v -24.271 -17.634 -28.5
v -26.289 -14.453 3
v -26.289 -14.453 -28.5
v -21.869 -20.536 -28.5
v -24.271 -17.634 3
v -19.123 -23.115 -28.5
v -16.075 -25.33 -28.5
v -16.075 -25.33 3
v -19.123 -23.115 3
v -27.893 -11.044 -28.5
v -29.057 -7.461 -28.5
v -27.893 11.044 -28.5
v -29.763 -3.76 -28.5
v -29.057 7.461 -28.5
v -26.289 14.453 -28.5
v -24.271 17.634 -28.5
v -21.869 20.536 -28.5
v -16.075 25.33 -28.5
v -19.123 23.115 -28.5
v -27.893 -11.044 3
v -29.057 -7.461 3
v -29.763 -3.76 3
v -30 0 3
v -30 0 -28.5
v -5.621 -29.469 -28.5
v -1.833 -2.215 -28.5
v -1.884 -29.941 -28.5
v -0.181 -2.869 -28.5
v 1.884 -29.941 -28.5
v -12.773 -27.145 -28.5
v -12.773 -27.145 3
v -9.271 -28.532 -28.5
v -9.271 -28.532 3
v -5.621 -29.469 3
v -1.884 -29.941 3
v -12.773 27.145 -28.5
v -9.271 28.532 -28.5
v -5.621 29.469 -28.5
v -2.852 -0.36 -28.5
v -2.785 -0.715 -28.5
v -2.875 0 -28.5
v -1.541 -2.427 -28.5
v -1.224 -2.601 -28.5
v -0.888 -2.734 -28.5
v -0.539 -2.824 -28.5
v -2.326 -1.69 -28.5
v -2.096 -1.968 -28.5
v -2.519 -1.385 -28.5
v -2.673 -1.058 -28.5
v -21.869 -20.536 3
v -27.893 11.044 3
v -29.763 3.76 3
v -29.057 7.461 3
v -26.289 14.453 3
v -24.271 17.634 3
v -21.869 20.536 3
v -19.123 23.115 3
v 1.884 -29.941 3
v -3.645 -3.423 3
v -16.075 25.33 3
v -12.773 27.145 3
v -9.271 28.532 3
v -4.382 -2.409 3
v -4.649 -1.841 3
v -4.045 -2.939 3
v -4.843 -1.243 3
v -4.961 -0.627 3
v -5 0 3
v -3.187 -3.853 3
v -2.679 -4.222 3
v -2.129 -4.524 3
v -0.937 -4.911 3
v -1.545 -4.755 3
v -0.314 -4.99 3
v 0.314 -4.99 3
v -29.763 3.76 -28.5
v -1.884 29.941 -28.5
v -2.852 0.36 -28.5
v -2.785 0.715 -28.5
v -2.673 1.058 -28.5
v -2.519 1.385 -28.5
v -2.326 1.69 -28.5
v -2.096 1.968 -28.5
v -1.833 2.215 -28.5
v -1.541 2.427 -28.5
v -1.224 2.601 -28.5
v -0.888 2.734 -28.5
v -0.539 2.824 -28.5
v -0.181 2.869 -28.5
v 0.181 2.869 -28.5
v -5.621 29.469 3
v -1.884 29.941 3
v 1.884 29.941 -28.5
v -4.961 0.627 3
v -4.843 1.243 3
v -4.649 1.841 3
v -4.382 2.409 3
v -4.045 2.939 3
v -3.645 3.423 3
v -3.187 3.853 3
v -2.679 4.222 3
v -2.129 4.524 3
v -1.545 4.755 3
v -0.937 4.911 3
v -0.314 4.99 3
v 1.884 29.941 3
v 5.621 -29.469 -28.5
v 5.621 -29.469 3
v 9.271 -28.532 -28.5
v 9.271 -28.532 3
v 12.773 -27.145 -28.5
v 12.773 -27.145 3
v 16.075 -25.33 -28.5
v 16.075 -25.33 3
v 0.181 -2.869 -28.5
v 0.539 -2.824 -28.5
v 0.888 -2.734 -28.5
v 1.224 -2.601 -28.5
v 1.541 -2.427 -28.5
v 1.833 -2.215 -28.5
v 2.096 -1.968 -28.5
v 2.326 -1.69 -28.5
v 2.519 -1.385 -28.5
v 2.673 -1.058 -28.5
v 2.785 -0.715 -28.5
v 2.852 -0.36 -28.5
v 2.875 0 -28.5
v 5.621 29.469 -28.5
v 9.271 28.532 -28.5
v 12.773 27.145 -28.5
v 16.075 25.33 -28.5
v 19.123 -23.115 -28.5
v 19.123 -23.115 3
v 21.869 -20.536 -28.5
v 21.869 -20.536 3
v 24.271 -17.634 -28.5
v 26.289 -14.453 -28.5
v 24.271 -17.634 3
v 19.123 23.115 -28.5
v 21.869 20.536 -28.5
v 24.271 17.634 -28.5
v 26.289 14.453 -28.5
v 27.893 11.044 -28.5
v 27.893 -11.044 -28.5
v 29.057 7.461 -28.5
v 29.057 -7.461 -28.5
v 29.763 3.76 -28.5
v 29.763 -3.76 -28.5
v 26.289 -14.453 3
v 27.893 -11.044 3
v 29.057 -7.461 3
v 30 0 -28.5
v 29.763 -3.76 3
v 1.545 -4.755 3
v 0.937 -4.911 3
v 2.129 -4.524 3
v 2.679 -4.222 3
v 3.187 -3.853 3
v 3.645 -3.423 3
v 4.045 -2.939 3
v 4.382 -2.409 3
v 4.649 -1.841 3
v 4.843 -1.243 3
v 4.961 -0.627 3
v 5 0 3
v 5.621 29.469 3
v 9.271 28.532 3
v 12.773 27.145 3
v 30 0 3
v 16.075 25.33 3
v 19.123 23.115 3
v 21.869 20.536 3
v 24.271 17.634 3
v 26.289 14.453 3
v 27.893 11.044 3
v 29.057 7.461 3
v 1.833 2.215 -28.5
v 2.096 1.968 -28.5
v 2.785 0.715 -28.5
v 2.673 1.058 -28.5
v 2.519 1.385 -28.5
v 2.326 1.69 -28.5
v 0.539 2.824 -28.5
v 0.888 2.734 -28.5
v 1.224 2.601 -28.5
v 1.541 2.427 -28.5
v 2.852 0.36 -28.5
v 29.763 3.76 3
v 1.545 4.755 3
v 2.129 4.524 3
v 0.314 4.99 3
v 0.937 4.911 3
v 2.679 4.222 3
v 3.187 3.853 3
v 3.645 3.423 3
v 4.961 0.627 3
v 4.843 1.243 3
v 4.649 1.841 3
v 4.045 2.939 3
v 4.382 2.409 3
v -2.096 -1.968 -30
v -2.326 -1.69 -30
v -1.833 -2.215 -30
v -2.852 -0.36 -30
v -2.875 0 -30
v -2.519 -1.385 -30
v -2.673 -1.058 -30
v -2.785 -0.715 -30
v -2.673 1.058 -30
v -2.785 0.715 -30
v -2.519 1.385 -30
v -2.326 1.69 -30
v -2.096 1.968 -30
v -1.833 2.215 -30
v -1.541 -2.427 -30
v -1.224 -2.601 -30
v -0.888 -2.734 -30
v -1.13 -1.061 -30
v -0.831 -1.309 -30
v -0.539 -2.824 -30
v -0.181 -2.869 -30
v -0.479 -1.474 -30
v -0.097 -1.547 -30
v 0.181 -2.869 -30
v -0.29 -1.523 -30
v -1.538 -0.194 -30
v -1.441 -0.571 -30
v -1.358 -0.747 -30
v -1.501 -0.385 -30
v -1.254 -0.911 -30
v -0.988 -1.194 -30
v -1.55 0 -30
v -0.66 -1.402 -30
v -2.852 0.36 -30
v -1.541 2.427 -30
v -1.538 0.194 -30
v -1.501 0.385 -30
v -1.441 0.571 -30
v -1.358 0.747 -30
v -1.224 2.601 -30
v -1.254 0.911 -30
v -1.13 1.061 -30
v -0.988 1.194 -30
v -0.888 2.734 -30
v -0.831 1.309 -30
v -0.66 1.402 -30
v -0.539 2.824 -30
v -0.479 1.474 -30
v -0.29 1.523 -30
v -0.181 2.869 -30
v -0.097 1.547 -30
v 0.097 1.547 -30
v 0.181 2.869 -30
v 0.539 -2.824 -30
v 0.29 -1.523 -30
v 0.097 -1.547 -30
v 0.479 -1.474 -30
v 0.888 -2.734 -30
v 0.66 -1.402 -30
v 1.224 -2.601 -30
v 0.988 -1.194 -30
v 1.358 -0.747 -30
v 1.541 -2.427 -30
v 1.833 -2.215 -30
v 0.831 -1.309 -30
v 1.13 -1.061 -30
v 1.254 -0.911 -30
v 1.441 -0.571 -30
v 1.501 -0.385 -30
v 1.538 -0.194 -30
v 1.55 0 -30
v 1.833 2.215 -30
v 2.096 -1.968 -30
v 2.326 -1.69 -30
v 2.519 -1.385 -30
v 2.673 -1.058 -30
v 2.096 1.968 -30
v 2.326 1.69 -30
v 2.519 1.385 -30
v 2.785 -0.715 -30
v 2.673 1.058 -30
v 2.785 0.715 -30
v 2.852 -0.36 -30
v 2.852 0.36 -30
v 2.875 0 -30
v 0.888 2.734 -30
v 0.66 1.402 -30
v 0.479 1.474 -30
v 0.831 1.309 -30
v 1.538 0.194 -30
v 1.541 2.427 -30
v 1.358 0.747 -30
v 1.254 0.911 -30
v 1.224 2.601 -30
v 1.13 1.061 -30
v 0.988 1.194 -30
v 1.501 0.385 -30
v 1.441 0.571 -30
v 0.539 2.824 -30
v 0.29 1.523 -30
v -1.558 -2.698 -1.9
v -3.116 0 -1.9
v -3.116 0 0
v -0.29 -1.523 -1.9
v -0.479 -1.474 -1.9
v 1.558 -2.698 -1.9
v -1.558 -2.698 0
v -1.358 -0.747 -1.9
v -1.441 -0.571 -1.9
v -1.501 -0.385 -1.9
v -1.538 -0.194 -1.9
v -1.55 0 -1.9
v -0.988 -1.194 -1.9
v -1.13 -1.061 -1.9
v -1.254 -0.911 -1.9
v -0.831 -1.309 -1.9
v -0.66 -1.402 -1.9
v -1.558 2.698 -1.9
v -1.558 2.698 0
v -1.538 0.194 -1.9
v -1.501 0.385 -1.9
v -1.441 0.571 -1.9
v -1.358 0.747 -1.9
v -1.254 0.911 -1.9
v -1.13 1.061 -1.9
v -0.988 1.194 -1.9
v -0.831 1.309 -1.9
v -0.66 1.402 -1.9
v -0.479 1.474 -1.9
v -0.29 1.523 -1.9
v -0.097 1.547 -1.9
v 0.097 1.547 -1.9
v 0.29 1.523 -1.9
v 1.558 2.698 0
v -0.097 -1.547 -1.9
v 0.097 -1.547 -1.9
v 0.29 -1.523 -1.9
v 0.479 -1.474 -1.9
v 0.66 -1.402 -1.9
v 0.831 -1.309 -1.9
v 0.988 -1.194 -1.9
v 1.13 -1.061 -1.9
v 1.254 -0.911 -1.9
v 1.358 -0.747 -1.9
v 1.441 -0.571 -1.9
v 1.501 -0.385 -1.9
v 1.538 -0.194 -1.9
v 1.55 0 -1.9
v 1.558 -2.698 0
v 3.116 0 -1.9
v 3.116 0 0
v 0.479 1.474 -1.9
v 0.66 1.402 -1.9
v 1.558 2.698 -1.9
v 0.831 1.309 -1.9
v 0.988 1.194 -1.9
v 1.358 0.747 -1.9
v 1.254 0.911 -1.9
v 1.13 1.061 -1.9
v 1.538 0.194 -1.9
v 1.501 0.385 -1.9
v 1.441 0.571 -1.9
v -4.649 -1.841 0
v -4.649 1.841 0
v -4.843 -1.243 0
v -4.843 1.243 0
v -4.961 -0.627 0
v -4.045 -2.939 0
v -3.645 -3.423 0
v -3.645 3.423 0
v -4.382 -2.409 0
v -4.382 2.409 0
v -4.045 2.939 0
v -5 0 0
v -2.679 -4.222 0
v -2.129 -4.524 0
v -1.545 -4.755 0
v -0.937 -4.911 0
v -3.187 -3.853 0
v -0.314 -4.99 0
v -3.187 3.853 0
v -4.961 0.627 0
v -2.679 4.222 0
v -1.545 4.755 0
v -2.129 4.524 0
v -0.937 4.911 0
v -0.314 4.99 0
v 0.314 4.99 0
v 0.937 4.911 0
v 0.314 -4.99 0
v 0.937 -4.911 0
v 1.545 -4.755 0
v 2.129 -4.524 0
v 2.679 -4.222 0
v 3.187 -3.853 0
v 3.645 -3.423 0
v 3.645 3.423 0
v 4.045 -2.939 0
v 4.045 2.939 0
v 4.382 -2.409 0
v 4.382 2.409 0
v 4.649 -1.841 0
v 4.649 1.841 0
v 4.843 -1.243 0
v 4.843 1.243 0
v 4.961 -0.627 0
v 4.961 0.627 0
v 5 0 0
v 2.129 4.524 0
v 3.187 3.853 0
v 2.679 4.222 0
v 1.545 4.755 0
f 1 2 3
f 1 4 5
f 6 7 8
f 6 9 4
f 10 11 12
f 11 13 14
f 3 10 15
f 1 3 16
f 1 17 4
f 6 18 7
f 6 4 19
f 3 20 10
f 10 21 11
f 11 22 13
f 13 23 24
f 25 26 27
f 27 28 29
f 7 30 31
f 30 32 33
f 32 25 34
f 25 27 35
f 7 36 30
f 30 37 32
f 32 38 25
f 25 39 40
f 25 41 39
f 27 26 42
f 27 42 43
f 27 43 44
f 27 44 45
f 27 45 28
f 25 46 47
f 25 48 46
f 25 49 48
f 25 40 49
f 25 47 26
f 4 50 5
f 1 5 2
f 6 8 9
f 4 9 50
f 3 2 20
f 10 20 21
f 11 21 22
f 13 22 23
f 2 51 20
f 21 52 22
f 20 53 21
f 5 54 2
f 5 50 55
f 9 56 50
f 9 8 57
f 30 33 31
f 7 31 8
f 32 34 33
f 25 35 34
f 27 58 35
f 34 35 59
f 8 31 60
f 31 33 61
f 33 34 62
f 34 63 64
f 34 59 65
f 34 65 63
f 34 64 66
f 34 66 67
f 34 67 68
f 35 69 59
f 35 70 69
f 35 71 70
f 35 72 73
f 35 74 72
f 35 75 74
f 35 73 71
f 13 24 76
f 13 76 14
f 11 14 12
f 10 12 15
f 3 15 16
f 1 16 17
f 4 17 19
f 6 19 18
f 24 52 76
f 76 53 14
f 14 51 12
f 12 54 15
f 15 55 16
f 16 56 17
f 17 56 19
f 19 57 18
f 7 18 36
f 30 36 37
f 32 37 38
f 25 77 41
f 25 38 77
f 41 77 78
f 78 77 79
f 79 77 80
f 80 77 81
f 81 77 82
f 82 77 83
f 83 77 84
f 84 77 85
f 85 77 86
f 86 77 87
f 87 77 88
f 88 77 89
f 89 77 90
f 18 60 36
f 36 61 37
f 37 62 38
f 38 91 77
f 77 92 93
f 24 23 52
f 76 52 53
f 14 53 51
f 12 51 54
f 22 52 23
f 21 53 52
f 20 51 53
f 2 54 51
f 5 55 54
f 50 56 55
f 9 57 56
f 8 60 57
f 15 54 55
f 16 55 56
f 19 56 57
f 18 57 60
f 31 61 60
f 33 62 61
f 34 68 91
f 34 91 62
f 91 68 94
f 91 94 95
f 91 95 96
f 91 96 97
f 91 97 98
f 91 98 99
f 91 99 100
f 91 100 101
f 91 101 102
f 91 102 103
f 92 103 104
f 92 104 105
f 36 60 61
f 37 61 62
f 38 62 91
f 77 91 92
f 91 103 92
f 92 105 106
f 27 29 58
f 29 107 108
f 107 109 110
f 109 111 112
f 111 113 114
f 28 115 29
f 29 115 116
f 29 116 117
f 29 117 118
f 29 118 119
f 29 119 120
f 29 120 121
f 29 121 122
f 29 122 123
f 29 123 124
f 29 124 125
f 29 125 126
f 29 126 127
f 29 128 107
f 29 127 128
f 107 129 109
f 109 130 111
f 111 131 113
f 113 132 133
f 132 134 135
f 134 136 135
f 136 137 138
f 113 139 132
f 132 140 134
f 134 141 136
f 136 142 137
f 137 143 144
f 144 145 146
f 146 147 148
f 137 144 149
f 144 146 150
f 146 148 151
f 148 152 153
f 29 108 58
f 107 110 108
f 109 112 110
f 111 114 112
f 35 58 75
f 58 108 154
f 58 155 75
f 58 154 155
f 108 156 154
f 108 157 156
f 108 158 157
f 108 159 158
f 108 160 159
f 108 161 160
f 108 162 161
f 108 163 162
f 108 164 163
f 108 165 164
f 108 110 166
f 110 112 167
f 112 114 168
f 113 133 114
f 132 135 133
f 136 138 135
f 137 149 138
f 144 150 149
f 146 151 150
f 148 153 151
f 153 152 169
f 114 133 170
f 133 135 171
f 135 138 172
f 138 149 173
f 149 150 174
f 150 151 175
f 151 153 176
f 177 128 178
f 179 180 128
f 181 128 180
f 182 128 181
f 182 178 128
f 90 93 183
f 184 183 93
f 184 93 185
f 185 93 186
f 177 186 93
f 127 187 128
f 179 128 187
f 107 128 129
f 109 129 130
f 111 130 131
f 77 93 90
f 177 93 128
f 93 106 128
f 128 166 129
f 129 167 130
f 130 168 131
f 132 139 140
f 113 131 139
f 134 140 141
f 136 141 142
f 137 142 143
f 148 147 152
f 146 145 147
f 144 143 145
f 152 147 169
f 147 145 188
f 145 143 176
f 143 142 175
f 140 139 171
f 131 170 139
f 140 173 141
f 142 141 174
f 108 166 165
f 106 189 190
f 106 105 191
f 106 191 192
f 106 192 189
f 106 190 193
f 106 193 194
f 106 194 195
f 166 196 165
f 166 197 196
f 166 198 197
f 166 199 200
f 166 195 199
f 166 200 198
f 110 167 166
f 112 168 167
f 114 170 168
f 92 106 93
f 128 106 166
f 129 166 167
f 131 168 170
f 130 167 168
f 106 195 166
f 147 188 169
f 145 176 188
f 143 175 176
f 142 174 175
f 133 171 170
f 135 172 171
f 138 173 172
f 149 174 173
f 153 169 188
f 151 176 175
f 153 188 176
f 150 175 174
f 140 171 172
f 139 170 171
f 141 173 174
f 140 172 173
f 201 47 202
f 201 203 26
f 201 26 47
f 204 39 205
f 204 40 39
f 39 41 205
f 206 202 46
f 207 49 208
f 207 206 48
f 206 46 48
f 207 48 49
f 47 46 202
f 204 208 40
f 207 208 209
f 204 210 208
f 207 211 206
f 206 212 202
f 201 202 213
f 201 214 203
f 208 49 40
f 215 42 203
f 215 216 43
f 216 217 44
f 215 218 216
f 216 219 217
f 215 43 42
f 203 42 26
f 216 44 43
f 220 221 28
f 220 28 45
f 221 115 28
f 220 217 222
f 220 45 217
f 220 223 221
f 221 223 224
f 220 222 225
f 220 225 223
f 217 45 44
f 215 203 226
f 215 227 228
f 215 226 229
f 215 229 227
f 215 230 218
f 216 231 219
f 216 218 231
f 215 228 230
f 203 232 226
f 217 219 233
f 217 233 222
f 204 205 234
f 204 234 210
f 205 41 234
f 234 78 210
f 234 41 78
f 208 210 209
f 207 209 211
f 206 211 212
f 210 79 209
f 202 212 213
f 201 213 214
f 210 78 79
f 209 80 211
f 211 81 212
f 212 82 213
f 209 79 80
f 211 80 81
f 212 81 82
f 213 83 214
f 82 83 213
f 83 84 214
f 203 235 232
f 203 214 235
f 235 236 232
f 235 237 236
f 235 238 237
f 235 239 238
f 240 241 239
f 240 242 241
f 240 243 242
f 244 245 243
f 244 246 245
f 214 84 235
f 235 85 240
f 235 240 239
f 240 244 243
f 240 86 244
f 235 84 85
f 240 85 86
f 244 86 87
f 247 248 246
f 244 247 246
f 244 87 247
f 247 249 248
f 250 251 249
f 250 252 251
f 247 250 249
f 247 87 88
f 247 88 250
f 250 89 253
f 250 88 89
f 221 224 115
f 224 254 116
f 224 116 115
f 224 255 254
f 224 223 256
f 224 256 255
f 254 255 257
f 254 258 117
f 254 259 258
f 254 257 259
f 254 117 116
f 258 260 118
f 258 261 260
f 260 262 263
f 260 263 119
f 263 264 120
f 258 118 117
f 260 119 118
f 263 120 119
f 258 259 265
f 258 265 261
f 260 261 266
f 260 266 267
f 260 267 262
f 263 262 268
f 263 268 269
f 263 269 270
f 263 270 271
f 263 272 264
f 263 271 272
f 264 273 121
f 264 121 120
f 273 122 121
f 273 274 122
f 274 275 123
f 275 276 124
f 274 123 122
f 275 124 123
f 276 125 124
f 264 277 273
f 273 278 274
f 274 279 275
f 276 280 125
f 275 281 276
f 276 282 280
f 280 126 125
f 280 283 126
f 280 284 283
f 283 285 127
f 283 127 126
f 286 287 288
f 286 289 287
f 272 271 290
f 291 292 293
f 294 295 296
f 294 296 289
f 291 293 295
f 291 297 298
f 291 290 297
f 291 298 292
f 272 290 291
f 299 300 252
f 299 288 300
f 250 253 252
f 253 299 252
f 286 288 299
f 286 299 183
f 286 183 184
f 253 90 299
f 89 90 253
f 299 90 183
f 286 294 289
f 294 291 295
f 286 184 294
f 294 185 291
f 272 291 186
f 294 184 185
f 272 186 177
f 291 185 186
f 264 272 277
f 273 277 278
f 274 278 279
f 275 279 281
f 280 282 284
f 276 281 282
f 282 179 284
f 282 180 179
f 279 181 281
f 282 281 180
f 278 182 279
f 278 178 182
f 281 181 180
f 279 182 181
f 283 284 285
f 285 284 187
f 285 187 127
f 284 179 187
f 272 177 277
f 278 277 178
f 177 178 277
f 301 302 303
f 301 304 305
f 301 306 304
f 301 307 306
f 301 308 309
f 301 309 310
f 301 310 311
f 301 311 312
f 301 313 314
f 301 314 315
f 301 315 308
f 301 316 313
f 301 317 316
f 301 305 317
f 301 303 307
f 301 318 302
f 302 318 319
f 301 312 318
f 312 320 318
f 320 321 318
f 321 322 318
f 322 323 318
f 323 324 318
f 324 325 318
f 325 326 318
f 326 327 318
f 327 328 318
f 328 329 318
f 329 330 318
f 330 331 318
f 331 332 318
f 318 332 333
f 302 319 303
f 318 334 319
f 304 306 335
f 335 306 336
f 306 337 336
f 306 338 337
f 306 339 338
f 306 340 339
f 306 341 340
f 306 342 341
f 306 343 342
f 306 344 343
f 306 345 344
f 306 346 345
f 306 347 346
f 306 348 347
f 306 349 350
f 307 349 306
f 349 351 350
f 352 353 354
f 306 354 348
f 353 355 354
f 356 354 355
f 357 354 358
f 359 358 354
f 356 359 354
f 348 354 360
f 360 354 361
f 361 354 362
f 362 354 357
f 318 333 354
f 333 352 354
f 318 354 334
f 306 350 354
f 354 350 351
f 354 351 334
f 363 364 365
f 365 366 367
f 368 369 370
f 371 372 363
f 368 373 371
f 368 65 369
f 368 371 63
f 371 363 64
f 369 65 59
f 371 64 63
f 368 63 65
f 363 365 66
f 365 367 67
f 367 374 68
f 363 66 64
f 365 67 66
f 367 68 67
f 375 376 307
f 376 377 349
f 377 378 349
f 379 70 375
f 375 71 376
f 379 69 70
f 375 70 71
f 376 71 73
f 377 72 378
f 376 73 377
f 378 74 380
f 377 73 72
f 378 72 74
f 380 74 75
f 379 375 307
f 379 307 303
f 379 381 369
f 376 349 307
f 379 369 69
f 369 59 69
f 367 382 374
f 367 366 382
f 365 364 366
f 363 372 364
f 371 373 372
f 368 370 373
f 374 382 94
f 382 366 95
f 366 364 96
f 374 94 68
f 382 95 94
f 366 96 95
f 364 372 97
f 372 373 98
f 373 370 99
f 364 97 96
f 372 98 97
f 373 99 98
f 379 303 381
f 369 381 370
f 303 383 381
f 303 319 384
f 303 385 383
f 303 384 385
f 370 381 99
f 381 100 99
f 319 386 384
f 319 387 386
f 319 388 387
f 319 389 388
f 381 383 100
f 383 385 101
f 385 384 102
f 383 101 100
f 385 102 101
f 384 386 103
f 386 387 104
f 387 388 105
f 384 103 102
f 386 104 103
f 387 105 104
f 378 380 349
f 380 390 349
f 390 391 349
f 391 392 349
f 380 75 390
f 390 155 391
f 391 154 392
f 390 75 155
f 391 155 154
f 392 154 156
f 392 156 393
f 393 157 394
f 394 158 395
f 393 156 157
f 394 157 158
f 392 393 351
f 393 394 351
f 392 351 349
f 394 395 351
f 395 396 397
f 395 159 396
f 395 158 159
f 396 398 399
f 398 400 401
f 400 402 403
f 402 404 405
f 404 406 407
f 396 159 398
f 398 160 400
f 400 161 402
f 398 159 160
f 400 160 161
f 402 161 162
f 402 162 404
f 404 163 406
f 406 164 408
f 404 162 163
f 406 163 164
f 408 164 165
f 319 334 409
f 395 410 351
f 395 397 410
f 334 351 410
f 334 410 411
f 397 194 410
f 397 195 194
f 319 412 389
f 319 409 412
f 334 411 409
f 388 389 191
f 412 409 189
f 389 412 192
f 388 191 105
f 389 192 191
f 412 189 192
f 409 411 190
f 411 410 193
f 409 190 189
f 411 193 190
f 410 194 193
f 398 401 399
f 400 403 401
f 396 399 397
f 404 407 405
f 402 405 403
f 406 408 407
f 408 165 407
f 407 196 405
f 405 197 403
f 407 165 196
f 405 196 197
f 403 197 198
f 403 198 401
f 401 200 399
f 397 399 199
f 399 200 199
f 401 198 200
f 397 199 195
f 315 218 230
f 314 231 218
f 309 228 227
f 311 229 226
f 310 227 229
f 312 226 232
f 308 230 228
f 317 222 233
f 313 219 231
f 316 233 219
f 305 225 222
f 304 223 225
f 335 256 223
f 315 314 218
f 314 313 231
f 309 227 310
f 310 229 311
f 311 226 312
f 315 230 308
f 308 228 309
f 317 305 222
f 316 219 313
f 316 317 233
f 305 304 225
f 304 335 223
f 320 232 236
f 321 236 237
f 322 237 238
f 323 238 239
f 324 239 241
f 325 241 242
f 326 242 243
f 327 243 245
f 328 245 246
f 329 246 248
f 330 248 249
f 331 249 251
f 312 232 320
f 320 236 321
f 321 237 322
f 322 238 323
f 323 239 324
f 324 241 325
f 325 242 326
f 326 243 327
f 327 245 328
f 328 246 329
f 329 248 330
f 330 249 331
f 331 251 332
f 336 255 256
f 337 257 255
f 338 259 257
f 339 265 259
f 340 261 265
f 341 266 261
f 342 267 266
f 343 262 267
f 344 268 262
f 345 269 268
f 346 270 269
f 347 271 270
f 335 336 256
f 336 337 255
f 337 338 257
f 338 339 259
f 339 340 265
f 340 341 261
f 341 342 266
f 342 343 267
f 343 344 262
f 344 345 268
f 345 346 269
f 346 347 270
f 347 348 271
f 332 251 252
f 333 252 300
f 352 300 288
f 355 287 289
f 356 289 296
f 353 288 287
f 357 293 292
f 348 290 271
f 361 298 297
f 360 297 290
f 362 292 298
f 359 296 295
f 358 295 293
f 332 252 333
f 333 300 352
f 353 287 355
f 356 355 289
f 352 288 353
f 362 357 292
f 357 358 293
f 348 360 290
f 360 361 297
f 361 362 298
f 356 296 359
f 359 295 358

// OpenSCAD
$fn = 50;


difference() {
	union() {
		translate(v = [0, 0, -28.5000000000]) {
			cylinder(h = 31.5000000000, r = 30.0000000000);
		}
		#translate(v = [0, 0, -30.0000000000]) {
			cylinder(h = 30, r = 2.8750000000);
		}
	}
	union() {
		translate(v = [0, 0, 0]) {
			rotate(a = [0, 0, 0]) {
				difference() {
					union() {
						translate(v = [0, 0, -1.9000000000]) {
							linear_extrude(height = 1.9000000000) {
								polygon(points = [[3.1158000000, 0.0000000000], [1.5579000000, 2.6983619531], [-1.5579000000, 2.6983619531], [-3.1158000000, 0.0000000000], [-1.5579000000, -2.6983619531], [1.5579000000, -2.6983619531]]);
							}
						}
					}
					union();
				}
			}
		}
		#cylinder(h = 3, r = 5.0000000000);
		#translate(v = [0, 0, -100.0000000000]) {
			cylinder(h = 200, r = 1.5500000000);
		}
	}
}
